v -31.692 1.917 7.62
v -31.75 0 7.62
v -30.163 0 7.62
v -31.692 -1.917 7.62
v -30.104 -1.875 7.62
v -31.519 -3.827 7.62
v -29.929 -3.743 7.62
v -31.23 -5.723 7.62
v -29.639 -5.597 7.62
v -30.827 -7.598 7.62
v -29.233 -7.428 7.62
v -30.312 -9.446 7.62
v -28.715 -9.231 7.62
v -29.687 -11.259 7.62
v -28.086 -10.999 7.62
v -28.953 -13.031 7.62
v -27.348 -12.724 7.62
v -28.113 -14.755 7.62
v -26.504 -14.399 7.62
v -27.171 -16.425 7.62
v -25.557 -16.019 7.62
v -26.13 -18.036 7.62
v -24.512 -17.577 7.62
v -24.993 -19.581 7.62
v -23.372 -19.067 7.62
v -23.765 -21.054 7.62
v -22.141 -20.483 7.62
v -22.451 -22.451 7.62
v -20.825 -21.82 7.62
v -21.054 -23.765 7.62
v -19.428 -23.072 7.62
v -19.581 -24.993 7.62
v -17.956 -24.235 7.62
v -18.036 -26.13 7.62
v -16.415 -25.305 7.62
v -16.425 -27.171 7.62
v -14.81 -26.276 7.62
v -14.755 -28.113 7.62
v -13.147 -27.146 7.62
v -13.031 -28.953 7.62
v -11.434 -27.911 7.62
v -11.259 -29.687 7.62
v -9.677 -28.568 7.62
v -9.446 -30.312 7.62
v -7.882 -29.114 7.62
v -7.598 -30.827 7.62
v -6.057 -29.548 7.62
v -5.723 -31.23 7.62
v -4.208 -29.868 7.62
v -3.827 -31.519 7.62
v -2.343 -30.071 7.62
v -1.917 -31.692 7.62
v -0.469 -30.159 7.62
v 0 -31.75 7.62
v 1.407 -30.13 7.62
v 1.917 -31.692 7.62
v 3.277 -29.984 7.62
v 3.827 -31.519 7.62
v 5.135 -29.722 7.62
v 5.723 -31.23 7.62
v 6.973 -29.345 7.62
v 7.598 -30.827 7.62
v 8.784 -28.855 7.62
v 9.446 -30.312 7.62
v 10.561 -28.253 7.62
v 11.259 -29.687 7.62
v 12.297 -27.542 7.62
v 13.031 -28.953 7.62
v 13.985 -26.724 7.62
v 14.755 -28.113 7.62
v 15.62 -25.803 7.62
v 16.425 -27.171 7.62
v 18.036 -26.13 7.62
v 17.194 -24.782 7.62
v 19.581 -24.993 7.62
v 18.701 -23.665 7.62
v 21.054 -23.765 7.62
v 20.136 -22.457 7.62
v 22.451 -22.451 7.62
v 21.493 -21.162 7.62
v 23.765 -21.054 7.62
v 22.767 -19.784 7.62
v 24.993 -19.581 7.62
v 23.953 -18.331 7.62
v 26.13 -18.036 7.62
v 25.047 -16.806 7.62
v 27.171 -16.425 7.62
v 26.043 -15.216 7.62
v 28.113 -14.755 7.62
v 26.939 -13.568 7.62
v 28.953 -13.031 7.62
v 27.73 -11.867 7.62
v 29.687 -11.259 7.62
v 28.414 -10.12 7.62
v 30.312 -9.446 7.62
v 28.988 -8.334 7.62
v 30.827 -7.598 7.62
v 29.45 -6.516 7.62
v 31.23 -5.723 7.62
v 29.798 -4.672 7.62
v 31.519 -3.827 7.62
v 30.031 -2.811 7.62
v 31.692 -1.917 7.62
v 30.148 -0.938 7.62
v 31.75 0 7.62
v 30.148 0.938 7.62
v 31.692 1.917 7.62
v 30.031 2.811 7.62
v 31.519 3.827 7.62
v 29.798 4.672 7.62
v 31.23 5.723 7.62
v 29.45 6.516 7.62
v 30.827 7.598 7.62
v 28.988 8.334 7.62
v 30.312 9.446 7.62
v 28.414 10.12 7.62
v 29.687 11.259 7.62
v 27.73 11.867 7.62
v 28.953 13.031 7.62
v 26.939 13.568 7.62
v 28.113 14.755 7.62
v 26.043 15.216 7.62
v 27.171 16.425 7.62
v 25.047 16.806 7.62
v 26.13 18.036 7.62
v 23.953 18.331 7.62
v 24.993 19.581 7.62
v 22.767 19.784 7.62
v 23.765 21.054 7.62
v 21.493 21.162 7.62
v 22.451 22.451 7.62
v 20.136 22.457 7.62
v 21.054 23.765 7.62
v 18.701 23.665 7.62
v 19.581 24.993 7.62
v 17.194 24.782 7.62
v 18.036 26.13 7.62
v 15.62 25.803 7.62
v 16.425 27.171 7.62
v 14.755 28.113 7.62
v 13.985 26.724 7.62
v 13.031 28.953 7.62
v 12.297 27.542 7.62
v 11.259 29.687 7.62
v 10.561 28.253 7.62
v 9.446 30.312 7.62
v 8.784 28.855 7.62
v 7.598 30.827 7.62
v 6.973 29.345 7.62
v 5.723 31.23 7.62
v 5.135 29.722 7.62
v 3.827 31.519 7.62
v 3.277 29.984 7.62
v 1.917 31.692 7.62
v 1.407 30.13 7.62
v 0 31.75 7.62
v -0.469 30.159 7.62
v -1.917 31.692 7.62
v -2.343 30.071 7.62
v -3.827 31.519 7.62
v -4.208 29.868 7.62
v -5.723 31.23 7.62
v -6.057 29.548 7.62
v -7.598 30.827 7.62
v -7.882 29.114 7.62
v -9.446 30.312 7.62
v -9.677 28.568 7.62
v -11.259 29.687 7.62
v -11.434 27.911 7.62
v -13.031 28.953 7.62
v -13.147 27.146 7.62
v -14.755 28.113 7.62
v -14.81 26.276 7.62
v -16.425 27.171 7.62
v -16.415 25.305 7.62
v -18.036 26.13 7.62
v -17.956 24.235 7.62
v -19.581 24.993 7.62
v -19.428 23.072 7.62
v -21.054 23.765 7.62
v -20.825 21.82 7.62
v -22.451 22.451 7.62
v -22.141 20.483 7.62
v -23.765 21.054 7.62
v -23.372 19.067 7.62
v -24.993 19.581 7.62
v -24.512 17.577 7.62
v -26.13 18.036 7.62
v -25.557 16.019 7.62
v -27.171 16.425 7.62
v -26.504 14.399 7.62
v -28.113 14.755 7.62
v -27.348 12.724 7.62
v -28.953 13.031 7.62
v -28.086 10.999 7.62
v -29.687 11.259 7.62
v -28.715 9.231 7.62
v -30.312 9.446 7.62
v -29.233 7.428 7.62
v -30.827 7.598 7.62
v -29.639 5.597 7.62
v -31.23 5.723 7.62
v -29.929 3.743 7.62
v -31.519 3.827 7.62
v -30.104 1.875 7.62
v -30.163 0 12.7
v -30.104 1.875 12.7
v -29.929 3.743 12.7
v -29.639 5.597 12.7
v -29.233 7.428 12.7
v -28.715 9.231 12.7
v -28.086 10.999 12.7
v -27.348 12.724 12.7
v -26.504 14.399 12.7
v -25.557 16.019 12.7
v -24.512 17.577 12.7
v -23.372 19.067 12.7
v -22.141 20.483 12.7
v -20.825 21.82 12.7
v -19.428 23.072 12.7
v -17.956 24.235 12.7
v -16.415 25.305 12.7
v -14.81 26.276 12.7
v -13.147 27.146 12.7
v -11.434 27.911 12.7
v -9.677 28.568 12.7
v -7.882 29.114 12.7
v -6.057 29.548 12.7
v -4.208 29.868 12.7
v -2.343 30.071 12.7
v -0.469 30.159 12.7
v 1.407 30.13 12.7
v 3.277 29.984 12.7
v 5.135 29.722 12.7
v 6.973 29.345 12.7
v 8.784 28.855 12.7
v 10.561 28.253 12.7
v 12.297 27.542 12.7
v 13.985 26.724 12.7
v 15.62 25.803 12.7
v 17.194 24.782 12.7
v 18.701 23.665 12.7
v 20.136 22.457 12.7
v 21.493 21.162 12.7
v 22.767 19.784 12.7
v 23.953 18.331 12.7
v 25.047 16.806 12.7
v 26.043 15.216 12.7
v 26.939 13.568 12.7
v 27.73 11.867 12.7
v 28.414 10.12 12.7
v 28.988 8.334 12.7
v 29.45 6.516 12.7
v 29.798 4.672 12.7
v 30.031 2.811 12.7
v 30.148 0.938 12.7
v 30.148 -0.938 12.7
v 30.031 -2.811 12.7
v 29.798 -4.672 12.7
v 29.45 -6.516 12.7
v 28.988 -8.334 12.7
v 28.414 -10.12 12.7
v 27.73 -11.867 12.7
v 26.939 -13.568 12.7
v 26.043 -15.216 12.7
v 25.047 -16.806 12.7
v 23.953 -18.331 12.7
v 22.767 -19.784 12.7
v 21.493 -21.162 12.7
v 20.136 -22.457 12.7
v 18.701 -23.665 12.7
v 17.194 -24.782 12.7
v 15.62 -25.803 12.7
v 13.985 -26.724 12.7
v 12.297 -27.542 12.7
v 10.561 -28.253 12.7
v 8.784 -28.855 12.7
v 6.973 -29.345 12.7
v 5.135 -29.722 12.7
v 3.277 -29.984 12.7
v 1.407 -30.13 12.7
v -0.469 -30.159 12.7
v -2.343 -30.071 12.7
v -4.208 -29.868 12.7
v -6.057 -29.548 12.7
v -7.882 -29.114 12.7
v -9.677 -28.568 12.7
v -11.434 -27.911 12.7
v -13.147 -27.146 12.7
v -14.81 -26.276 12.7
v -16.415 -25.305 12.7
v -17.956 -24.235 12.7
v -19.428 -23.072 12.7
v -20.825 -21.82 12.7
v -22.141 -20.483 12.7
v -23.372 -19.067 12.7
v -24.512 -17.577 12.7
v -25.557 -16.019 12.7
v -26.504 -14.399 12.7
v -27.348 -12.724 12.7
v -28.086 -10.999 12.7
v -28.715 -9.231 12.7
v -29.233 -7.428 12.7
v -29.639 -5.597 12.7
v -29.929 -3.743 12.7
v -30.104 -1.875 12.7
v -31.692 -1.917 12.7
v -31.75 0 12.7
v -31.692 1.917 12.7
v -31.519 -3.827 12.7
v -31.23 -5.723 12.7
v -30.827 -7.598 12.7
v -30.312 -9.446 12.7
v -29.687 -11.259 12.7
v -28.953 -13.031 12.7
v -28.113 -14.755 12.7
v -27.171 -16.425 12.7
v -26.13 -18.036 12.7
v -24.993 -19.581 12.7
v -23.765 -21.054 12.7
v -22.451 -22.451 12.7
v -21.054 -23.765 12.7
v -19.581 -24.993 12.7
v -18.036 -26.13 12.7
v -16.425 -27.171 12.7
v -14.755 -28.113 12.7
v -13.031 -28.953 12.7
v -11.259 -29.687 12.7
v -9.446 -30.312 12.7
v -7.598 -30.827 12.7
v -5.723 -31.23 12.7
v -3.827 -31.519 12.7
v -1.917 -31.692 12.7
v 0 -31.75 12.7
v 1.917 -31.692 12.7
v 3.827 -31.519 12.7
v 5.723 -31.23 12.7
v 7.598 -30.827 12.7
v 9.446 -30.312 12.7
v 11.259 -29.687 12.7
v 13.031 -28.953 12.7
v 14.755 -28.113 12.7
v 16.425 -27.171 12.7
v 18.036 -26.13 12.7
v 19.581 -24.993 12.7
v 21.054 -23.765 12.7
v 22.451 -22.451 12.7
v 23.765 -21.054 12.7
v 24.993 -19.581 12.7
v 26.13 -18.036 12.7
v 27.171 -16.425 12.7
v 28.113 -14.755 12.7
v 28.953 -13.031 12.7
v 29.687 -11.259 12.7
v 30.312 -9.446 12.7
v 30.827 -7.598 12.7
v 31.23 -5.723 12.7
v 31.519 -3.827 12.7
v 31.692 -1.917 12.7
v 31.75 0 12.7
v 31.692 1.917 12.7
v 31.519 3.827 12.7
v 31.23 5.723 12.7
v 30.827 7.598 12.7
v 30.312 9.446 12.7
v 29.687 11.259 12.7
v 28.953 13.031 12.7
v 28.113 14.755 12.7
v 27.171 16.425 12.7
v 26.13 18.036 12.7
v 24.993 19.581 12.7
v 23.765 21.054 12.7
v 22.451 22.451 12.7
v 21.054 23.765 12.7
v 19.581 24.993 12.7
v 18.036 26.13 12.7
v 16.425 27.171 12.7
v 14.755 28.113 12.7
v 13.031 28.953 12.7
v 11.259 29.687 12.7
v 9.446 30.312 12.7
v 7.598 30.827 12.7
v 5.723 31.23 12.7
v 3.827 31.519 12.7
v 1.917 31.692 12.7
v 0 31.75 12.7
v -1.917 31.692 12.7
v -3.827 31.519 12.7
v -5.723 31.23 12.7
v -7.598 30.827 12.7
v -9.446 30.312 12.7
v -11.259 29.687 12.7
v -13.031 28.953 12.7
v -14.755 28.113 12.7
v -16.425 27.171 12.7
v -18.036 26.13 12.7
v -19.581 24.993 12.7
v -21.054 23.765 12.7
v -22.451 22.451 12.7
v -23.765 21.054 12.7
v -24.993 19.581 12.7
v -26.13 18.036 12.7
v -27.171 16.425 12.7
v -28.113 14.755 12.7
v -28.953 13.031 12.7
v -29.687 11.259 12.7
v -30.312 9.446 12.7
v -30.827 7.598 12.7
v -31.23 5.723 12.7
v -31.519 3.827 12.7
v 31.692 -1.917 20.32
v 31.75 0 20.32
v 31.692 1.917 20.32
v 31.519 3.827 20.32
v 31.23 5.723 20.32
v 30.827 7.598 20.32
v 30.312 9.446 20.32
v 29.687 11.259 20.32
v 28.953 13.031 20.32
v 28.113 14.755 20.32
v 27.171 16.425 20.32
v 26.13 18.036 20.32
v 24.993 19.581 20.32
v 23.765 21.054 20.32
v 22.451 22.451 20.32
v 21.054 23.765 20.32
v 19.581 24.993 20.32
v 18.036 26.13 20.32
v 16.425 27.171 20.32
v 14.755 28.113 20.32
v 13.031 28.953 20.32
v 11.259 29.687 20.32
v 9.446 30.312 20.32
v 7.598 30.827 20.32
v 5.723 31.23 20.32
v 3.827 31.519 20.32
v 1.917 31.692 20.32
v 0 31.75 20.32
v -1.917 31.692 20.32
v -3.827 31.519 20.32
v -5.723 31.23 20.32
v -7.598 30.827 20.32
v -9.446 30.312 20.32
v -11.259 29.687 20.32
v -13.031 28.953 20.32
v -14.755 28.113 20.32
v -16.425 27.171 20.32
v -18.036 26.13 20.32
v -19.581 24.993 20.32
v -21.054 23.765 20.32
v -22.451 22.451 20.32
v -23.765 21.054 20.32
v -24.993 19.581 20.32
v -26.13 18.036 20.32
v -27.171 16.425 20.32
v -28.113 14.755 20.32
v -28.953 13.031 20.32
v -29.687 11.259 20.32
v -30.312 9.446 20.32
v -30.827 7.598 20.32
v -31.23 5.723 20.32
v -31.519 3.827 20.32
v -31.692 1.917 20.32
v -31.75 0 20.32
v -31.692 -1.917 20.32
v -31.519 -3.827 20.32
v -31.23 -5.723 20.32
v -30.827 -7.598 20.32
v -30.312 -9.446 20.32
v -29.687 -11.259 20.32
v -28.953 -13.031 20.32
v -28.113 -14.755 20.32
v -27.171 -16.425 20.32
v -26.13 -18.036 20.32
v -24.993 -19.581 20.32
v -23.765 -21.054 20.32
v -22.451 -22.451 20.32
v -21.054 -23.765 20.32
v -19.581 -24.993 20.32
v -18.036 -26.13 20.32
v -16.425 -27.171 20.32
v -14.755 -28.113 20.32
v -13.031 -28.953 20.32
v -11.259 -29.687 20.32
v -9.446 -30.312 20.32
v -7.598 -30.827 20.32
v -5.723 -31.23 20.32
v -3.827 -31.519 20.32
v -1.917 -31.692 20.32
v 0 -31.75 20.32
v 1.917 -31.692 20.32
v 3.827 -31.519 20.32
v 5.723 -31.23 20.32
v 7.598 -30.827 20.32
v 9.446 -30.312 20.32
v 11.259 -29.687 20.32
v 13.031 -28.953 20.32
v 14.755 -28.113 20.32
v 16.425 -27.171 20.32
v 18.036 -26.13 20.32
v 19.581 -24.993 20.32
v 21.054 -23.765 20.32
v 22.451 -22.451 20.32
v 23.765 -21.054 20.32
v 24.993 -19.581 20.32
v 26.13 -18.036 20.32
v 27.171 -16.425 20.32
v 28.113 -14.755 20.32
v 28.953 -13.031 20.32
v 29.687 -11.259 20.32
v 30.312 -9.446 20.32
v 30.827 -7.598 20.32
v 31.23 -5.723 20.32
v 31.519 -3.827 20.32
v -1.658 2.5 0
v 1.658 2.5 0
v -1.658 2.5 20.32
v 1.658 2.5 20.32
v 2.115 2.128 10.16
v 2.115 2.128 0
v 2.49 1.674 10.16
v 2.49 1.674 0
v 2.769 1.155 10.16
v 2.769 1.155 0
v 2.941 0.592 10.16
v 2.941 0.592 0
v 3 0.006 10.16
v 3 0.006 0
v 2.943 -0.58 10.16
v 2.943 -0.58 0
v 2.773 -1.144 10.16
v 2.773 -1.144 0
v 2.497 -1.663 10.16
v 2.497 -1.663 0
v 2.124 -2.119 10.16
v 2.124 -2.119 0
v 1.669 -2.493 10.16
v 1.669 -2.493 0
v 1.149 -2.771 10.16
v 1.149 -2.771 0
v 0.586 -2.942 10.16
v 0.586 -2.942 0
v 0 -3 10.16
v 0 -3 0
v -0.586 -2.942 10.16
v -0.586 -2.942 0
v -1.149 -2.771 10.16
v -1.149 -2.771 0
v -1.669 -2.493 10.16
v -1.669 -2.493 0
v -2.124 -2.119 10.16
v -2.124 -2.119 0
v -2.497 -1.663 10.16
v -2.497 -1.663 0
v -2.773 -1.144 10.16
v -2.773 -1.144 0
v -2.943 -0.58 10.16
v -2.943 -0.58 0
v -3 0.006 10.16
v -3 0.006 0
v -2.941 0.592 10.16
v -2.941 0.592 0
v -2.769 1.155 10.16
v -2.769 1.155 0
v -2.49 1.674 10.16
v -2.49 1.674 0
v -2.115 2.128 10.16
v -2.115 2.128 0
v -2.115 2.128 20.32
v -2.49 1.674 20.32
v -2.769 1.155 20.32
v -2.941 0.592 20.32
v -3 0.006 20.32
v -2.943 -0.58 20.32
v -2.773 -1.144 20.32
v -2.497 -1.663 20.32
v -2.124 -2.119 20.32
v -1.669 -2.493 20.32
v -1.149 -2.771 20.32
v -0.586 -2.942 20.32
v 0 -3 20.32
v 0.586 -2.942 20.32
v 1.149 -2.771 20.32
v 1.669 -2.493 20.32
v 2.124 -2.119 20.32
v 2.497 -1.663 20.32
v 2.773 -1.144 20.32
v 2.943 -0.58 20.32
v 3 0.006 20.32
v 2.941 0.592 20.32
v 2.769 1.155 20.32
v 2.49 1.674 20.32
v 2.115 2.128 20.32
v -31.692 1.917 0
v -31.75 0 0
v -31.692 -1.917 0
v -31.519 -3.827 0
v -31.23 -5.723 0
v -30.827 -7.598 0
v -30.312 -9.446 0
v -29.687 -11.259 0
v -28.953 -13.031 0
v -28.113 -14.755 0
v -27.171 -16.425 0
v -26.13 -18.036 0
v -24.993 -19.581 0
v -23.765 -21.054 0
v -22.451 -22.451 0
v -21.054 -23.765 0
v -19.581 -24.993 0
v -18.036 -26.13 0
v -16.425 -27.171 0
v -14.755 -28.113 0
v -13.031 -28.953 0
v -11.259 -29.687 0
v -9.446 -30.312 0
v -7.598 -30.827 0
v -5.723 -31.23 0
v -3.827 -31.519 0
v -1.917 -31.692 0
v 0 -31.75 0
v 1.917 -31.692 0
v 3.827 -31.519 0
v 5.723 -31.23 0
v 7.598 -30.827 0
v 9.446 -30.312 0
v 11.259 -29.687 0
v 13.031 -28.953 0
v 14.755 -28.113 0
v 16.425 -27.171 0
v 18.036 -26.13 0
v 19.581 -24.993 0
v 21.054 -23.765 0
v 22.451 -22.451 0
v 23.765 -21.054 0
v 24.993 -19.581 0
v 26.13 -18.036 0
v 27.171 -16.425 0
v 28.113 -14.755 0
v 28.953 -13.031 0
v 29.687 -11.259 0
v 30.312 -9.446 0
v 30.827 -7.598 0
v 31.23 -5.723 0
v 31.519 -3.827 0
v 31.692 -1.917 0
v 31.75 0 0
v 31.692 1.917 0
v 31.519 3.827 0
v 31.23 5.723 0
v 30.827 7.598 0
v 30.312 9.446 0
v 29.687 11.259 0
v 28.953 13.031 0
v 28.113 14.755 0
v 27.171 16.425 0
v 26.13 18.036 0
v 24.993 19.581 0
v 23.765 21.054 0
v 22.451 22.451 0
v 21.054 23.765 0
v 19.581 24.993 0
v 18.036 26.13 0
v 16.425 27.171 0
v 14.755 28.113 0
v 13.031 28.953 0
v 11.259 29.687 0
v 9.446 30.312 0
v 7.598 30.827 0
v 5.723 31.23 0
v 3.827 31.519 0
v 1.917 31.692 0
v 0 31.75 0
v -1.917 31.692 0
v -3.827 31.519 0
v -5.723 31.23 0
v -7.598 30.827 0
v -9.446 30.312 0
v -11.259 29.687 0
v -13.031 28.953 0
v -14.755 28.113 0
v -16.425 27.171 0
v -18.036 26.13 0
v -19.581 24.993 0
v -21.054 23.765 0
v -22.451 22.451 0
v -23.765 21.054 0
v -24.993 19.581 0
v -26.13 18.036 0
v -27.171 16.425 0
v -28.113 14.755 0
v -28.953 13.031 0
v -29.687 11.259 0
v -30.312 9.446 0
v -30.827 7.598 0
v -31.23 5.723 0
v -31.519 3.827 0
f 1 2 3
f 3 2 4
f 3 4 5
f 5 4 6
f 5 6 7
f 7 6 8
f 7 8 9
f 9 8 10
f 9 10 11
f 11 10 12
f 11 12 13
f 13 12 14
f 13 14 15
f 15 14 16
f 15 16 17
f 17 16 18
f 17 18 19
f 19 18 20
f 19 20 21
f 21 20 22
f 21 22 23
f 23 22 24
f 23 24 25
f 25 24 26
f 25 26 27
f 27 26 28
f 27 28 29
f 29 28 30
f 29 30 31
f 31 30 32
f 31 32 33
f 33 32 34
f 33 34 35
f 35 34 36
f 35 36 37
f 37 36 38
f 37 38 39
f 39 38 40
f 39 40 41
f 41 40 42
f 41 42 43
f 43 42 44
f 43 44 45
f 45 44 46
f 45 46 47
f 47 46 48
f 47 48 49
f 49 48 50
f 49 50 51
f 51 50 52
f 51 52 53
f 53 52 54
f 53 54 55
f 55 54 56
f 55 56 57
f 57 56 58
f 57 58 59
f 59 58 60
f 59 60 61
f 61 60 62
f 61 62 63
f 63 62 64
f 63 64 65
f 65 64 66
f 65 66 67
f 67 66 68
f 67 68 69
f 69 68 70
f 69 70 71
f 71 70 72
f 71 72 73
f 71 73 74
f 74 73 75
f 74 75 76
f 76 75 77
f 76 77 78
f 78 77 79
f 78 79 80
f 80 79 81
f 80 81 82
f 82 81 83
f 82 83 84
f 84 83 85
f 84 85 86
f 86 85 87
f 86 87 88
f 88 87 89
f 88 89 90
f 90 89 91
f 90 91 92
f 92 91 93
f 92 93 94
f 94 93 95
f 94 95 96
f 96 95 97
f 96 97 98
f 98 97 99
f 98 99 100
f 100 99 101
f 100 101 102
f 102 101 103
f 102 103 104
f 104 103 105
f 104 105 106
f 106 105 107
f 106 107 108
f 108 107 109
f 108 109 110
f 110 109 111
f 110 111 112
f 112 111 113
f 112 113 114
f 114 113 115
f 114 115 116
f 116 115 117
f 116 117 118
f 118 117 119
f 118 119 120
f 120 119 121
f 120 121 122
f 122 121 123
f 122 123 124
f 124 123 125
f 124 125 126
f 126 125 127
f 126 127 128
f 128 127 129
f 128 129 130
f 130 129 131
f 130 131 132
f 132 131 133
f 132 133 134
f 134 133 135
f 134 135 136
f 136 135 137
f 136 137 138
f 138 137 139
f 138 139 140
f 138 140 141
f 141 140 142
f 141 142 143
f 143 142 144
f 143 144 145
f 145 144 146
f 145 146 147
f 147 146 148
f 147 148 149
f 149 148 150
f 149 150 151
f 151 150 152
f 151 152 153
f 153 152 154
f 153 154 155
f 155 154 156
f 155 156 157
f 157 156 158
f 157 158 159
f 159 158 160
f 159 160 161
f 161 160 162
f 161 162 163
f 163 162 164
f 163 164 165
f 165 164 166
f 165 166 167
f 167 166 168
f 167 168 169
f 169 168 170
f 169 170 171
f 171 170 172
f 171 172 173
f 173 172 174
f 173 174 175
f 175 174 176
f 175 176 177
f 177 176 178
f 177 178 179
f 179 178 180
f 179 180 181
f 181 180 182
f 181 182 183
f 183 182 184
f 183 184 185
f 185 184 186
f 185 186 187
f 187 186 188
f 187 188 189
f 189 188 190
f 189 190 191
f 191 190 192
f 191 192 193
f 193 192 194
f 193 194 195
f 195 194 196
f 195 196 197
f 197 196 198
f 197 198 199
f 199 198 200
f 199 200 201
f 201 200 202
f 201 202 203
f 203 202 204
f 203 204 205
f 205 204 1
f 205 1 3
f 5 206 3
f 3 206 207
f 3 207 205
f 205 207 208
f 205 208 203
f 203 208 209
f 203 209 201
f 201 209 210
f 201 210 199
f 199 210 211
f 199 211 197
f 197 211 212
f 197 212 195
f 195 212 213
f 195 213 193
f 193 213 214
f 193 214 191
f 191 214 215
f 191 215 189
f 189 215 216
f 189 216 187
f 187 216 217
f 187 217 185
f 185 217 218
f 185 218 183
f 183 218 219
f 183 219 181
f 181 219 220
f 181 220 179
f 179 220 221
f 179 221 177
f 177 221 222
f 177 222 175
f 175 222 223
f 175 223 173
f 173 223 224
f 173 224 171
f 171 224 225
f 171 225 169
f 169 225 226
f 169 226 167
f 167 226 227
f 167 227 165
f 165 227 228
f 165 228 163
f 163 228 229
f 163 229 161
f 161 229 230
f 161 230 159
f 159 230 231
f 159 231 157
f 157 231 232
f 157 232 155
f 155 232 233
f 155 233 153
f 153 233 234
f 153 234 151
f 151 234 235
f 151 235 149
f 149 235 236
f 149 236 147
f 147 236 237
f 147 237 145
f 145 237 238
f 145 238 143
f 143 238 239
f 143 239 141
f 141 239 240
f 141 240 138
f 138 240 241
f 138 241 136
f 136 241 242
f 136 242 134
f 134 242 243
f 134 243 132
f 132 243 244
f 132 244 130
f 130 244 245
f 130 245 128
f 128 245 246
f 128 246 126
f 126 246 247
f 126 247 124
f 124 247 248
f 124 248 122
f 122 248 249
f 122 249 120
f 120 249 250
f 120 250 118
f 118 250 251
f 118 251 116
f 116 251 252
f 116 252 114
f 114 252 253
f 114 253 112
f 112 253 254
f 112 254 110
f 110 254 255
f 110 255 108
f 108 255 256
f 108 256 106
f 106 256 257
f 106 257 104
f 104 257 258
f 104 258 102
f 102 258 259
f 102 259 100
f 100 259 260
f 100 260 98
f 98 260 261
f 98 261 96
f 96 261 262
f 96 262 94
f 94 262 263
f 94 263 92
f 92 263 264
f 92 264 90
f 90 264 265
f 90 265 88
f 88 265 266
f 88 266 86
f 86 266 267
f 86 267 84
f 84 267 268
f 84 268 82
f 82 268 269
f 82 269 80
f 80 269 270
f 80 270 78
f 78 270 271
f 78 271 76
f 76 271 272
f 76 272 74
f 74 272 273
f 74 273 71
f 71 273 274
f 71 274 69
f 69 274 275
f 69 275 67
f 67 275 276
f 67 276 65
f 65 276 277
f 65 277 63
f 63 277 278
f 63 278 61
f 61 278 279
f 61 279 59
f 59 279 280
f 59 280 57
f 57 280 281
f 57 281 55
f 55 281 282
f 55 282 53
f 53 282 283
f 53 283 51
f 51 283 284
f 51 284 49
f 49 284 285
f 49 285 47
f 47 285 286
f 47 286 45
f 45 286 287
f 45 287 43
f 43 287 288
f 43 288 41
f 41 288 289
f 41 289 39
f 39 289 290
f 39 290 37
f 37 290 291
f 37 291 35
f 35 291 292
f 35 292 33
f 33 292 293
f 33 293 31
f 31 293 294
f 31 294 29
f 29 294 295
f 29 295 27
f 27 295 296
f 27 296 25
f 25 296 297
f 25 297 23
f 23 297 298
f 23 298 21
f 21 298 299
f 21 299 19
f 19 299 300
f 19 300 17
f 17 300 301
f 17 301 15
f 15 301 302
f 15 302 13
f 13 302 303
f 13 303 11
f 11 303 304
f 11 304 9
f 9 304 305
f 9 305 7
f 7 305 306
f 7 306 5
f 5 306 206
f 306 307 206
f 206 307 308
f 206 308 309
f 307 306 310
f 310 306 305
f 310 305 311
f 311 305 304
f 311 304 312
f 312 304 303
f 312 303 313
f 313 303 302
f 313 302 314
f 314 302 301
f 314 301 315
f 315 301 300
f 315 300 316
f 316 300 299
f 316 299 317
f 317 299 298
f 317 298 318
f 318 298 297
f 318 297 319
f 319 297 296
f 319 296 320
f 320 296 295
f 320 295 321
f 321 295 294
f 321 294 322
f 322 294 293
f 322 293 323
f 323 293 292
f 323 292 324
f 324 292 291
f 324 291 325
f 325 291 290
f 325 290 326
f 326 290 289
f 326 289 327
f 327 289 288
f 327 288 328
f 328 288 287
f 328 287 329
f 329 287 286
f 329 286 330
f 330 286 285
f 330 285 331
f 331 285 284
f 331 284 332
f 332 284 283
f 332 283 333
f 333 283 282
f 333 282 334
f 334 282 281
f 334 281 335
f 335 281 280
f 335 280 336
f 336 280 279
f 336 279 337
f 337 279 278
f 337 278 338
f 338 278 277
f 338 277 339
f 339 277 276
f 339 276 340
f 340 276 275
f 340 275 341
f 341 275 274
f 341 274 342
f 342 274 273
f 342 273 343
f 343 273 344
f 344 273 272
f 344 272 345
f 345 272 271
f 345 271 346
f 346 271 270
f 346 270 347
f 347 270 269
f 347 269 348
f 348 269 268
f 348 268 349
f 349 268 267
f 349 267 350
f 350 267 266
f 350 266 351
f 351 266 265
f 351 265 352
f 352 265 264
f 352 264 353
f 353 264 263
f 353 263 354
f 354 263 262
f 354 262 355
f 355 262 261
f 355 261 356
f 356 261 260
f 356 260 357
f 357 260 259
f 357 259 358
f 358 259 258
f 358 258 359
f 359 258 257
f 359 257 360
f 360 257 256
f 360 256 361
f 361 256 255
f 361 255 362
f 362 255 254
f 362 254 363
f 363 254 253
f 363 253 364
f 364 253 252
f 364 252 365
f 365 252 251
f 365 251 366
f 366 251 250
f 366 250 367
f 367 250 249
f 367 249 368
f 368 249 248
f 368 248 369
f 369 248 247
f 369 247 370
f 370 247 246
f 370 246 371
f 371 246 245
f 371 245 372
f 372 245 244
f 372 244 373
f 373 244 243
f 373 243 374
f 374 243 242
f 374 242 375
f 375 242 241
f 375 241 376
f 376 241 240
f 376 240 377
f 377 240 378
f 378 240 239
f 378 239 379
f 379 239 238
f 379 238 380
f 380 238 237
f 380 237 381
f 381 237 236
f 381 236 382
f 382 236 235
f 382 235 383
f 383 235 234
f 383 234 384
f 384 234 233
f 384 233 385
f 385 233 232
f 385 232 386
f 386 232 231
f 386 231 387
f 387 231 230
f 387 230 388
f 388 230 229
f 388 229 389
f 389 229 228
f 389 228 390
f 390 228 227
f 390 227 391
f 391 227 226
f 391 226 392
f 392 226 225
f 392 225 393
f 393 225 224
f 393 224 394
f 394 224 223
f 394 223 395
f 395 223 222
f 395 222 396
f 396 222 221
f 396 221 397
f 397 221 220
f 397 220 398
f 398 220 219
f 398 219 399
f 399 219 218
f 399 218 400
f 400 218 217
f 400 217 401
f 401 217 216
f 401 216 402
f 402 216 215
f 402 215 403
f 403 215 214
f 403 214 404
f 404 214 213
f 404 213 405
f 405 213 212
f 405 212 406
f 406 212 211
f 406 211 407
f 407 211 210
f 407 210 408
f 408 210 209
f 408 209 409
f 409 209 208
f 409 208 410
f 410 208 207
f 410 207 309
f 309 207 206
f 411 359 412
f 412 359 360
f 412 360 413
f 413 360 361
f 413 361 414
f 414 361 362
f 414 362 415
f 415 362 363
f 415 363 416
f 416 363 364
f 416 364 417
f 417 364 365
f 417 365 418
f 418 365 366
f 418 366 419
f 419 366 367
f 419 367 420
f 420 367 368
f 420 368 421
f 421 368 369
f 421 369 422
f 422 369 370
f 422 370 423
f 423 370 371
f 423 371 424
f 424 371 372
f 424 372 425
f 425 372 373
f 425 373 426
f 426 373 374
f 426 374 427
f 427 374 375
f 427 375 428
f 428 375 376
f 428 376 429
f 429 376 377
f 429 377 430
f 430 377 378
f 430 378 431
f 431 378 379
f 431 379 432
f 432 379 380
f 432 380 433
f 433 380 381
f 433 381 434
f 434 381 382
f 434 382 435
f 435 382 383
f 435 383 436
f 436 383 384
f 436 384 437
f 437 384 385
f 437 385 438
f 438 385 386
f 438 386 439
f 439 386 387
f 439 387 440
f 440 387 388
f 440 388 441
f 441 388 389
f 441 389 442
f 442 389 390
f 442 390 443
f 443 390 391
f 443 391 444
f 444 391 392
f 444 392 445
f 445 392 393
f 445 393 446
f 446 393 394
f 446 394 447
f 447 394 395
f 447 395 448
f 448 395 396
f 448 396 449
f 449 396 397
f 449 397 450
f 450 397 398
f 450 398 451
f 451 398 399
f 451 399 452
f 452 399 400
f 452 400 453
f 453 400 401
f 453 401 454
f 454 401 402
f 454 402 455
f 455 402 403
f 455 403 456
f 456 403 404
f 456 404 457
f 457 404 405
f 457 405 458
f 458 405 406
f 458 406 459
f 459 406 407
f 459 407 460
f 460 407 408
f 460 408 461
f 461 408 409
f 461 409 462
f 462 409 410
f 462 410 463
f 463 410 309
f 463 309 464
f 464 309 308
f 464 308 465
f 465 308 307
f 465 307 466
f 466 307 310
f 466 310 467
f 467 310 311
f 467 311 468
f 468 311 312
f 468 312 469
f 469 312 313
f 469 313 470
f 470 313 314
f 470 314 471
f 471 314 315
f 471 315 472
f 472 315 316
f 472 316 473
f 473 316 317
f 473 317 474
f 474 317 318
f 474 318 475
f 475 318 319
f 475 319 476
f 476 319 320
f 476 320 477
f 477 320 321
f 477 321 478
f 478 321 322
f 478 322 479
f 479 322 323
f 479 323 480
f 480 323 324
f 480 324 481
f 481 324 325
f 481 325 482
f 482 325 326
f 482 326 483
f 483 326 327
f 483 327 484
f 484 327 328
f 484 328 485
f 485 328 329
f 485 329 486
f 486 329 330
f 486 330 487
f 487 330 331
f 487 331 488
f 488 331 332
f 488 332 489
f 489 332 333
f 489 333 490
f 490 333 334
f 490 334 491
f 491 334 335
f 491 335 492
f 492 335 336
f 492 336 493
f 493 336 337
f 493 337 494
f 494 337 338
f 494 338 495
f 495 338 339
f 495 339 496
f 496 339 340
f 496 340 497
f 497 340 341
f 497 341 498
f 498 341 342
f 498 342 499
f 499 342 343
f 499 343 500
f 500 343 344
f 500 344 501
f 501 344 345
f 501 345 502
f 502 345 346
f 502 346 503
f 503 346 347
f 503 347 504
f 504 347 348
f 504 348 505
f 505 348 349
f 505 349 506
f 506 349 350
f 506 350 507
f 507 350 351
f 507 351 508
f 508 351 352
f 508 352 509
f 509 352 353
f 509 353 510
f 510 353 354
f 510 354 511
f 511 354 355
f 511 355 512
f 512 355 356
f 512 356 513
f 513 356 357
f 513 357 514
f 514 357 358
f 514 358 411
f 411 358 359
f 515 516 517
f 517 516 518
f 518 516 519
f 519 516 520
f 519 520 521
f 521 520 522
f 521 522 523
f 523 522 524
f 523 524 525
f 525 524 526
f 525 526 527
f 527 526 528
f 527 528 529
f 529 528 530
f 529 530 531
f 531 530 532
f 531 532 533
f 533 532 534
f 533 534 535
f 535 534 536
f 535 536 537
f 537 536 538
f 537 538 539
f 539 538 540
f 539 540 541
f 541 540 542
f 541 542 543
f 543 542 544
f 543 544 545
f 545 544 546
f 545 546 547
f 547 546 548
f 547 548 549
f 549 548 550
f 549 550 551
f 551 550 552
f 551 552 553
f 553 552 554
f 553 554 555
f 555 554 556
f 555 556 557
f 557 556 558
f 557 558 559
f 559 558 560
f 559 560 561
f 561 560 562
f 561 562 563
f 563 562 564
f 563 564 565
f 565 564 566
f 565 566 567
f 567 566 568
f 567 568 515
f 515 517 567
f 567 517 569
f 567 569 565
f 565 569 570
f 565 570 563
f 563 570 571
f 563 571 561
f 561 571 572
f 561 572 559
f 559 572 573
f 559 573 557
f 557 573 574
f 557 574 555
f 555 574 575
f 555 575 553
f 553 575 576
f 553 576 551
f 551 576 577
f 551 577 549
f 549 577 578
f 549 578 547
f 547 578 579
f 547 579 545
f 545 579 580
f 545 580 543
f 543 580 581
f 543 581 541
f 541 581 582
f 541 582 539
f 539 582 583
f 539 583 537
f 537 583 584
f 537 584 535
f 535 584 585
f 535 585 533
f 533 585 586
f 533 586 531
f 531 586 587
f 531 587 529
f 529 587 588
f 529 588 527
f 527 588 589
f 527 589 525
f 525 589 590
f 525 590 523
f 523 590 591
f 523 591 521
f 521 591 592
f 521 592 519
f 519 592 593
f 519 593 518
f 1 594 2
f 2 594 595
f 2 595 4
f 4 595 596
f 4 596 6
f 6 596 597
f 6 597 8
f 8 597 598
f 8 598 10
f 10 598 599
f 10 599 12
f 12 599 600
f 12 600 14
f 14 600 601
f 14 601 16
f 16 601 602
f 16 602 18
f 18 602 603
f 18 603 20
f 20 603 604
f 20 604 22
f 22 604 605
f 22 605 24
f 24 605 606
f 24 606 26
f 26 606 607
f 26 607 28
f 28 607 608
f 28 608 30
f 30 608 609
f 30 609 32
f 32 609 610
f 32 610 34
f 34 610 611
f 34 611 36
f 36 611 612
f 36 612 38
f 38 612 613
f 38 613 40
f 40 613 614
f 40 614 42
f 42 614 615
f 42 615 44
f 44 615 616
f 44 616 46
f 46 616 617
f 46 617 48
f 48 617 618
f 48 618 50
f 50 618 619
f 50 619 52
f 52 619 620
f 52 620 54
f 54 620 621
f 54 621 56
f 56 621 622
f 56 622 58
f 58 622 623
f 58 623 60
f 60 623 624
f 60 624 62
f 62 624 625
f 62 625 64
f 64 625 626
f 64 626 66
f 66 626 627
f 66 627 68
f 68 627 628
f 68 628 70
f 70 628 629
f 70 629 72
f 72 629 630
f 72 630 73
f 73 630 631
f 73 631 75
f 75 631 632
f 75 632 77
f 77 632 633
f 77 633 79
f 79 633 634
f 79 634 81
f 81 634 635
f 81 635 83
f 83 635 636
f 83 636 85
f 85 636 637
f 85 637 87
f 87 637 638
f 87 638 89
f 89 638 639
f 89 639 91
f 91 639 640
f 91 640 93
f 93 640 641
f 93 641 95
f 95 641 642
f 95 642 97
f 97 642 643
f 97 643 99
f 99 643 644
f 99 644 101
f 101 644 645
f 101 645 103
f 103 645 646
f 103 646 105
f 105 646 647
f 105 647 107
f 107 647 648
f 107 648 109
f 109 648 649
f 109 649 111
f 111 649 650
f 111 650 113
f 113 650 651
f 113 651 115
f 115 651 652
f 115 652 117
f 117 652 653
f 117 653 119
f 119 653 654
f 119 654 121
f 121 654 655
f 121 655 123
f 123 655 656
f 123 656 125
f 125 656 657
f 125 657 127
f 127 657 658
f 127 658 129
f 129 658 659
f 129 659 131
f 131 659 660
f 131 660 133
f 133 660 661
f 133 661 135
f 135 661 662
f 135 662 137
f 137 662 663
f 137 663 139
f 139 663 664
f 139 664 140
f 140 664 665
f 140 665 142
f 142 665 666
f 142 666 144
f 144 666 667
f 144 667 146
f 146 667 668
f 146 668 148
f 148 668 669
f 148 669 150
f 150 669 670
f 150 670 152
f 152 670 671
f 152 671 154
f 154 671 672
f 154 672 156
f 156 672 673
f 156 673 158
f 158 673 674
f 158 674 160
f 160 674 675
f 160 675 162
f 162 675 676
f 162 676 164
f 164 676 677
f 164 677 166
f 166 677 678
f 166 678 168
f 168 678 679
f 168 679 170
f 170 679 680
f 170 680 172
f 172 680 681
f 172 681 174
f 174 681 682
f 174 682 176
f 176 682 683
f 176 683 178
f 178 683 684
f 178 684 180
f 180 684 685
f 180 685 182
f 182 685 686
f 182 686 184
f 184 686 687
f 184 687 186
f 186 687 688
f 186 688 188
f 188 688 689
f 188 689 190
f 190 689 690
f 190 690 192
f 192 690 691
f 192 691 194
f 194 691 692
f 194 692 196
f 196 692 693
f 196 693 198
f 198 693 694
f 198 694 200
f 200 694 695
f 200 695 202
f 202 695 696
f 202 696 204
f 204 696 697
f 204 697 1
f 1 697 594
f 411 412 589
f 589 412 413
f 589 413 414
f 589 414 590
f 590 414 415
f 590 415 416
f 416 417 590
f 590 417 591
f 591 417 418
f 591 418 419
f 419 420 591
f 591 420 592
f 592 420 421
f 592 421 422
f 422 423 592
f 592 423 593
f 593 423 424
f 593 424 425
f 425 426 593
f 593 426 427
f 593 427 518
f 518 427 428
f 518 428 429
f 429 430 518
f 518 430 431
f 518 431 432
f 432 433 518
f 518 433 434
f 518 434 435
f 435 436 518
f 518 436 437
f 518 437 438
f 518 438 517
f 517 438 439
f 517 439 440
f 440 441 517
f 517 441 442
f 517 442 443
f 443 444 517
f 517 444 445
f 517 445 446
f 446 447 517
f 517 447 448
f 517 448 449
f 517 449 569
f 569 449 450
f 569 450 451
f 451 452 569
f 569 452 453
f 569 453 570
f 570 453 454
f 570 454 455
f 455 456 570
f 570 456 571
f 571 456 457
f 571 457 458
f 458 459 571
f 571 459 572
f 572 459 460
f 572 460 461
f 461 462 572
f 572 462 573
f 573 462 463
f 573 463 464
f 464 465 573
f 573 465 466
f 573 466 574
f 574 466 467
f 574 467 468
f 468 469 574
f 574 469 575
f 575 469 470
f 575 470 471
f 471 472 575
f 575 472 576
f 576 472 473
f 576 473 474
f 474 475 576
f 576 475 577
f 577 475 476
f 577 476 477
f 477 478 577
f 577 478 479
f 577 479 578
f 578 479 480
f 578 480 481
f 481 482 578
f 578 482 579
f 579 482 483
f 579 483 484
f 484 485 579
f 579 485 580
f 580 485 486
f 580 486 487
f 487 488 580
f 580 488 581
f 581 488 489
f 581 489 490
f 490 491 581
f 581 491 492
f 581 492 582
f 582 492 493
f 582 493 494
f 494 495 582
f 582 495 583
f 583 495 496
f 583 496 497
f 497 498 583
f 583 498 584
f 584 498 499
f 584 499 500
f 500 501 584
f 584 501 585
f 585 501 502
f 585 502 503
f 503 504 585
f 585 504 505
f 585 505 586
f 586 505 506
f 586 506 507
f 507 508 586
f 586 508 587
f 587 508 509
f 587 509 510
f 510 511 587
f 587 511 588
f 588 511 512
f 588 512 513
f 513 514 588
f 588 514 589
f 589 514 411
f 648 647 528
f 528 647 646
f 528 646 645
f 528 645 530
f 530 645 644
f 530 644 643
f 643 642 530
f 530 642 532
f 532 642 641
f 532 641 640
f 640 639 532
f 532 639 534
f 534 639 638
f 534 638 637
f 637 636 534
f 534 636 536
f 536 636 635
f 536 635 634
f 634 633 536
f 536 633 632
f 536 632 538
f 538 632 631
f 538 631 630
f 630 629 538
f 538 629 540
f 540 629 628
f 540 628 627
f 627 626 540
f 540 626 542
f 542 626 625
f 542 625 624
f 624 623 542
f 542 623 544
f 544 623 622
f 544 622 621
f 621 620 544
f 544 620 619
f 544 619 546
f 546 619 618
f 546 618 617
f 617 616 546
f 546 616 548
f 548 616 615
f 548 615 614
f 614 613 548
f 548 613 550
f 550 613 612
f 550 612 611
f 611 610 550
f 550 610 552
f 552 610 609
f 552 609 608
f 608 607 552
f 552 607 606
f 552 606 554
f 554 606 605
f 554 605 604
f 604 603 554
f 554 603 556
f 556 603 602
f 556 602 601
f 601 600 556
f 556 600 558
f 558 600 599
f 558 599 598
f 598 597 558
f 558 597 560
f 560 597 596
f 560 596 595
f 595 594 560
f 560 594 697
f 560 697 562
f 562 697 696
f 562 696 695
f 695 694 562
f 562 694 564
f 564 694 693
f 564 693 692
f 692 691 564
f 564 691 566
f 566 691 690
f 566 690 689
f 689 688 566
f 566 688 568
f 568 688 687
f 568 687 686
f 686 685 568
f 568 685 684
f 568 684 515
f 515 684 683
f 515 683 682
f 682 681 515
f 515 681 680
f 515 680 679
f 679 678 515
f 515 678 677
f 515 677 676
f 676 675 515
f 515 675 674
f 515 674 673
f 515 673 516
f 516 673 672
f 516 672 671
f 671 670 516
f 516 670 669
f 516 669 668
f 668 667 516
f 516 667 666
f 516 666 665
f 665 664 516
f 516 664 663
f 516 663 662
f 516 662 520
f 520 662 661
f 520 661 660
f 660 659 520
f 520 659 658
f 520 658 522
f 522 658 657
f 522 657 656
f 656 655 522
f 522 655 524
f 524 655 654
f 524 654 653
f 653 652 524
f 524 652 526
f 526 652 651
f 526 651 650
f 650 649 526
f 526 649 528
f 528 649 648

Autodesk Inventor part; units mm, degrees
sketch "Sketch1" plane through (0, 0, 0) normal (0, 0, 1) x (1, 0, 0)
  circle A0 centre (0, 0) radius 31.75
  circle A1 centre (0, 0) radius 3
  line L0 (0, -3) -> (0, 2.5) construction
  line L1 (0, 2.5) -> (1.6583, 2.5)
  line L2 (0, 2.5) -> (-1.6583, 2.5)
  dimension "d0" = 63.5
  dimension "d1" = 6
  dimension "d2" = 5.5
extrude "Extrusion1" add sketch "Sketch1" along normal blind 20.32 contours A0 | L1 L2 A1 picked at (-0.897, 2.6056)
sketch "Sketch2" plane through (0, 0, 0) normal (0, 1, 0) x (-1, 0, 0)
  line L0 (31.75, 7.62) -> (30.1625, 7.62)
  line L1 (30.1625, 7.62) -> (30.1625, 12.7)
  line L2 (30.1625, 12.7) -> (31.75, 12.7)
  line L3 (31.75, 7.62) -> (31.75, 12.7)
  line L4 (31.75, 0) -> (31.75, 7.62)
  line L5 (31.75, 20.32) -> (-31.75, 20.32) projected
  line L6 (31.75, 12.7) -> (31.75, 20.32)
  line L7 (0, -4.064) -> (0, 24.384) projected
  point P0 (0, 0)
  point P1 (31.75, 10.16)
  dimension "d5" = 5.08
  dimension "d6" = 1.5875
  dimension "d7" = 7.62
revolve "Revolution1" cut sketch "Sketch2" angle 360 about axis through (0, 0, -10) along (0, 0, 1)
